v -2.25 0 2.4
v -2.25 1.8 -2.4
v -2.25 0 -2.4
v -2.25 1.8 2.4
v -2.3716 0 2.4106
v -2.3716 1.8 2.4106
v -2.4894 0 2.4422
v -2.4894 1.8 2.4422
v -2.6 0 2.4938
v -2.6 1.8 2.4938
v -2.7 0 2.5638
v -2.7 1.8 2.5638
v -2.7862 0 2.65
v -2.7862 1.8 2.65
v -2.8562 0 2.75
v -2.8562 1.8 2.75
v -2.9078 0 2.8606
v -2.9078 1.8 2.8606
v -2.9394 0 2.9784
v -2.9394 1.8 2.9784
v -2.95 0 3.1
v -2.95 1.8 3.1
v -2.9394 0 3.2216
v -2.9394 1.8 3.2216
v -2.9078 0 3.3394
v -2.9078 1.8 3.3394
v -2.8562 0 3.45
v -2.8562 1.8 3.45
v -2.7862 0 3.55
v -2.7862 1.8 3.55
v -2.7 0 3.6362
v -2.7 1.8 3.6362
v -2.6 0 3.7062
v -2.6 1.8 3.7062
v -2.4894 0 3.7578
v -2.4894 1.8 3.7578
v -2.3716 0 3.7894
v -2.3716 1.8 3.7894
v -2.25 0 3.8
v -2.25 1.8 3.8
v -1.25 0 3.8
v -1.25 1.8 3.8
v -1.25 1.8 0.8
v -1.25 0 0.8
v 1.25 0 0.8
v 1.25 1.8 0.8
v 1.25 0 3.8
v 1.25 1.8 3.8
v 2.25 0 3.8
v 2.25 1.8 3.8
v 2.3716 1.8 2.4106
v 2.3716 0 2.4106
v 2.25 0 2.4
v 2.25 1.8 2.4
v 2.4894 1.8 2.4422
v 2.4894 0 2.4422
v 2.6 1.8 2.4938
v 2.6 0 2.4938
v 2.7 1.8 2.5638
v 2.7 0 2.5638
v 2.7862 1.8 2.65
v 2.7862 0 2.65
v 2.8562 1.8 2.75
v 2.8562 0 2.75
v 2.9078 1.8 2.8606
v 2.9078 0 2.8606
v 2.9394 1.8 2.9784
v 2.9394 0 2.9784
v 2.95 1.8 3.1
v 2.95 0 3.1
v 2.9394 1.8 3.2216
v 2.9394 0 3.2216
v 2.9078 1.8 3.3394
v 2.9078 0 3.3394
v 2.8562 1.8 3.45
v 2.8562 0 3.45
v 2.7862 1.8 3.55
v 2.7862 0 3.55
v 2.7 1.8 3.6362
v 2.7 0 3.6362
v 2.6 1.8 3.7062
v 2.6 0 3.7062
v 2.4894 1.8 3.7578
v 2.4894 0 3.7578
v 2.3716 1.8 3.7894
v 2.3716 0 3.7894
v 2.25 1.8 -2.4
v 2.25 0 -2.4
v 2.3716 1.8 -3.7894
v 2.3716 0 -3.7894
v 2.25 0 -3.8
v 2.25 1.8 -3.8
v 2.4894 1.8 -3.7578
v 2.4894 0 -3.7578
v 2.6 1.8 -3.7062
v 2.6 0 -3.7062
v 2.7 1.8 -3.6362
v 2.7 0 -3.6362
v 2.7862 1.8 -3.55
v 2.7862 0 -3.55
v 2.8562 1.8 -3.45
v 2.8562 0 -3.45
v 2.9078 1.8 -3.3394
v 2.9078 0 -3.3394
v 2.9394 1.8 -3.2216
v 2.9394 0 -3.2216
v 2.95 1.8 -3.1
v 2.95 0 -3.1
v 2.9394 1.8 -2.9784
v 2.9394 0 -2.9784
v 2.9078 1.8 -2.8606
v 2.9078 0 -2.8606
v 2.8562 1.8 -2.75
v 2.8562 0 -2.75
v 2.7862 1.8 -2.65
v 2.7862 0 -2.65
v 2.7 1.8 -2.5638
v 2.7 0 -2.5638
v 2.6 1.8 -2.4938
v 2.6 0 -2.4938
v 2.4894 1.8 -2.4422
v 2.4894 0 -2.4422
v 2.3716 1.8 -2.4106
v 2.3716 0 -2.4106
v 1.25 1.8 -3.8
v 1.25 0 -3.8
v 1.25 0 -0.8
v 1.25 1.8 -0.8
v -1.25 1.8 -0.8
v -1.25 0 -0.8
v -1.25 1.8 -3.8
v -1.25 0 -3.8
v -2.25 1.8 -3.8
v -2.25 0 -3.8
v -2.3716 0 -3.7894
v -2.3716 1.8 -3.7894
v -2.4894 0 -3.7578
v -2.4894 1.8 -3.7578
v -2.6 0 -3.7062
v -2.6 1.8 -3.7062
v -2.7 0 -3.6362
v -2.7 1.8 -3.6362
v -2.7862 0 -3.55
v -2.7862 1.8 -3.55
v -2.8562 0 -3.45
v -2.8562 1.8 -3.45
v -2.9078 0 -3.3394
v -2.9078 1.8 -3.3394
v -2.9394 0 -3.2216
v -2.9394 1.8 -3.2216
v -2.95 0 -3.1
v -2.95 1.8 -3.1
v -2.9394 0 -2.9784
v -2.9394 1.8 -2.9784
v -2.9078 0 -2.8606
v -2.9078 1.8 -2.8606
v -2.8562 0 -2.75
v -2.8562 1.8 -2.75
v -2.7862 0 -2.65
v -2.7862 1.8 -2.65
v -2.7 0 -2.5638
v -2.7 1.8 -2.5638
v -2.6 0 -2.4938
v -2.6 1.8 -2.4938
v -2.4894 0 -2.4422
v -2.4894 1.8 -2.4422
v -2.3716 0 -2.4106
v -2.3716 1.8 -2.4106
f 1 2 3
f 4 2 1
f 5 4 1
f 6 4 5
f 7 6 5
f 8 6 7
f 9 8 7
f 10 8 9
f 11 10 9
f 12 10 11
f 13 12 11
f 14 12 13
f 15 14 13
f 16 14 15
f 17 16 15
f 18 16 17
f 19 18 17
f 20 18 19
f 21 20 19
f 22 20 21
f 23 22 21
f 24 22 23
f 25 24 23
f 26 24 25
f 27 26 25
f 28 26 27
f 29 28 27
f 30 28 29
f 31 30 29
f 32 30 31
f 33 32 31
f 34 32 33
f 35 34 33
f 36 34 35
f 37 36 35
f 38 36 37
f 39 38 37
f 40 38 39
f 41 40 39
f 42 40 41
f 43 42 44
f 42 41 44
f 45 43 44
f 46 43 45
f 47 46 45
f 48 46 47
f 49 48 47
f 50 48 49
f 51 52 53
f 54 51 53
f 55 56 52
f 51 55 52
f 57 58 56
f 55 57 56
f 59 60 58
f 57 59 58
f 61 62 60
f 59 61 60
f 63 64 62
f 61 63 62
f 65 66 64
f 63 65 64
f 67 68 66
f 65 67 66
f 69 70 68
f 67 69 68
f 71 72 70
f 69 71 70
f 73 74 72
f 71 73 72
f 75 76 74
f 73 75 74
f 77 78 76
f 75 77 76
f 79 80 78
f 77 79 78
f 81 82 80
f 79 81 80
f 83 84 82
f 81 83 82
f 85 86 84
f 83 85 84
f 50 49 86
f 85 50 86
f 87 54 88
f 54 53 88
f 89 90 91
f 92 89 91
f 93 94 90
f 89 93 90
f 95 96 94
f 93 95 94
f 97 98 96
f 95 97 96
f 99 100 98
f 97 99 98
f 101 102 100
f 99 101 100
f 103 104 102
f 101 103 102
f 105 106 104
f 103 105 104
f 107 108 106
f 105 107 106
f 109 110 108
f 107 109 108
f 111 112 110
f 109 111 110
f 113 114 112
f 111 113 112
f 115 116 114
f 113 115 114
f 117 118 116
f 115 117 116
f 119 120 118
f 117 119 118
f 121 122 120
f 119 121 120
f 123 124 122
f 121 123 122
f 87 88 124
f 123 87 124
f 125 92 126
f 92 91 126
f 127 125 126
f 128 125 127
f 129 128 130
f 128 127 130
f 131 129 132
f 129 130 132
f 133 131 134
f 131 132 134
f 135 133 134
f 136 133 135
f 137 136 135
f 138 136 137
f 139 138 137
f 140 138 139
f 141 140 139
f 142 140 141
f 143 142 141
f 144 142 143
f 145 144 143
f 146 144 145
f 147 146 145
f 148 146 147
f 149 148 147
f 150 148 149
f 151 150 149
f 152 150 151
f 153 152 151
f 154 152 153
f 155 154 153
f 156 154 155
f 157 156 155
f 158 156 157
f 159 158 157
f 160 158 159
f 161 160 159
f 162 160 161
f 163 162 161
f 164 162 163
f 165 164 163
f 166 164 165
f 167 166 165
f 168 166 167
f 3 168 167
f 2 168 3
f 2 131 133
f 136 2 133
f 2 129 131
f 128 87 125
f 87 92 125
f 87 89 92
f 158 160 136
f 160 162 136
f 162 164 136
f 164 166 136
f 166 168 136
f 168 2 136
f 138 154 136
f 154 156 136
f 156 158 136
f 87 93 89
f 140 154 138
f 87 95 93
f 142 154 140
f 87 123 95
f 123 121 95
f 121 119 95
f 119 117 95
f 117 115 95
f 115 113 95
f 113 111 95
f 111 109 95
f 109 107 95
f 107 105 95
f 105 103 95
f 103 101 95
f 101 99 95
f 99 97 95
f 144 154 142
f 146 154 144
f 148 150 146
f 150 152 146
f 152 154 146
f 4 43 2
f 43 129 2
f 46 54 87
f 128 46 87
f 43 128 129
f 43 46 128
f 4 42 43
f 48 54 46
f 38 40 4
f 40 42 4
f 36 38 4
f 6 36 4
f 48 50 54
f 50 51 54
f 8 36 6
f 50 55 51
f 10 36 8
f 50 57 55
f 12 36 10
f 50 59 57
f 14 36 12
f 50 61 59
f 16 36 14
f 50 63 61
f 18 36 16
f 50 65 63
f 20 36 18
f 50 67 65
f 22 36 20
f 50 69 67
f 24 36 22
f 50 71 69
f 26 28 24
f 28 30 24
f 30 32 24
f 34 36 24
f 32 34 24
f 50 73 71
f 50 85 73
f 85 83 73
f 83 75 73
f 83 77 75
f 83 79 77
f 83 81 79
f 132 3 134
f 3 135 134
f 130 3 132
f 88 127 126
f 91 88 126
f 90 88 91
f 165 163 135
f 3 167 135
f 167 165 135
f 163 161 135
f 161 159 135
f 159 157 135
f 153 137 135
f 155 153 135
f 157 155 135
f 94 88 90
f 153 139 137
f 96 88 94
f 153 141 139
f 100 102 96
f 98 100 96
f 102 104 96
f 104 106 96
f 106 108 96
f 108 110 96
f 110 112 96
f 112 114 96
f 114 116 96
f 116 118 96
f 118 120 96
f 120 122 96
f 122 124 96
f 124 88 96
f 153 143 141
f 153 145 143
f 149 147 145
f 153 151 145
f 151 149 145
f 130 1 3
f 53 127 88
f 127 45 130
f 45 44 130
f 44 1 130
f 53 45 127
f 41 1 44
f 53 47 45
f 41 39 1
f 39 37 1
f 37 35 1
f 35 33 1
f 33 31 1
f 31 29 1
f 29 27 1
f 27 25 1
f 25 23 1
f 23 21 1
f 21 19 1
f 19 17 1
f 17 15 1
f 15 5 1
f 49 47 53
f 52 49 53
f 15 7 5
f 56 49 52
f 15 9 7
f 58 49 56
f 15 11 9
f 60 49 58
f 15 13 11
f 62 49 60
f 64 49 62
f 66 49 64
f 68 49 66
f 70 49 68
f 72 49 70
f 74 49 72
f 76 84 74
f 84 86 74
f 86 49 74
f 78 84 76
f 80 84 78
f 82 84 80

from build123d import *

# Parameters (mm, degrees)
SKETCH1_W           = 1
SKETCH1_H           = 1.4
BOSS_EXTRUDE1_DEPTH = 1.8


with BuildPart() as part:
    # Sketch1 → Boss-Extrude1 (new body)
    with BuildSketch(Plane(origin=(0, 0, 0), x_dir=(1, 0, 0), z_dir=(0, 1, 0))):
        Polygon((-2.25, 2.4), (-2.25, -2.4), (-1.25, -2.4), (-1.25, -0.8), (1.25, -0.8), (1.25, -2.4), (2.25, -2.4), (2.25, 2.4), (1.25, 2.4), (1.25, 0.8), (-1.25, 0.8), (-1.25, 2.4), align=None)
        with Locations((-1.75, 3.1)):
            Rectangle(SKETCH1_W, SKETCH1_H)
        with BuildLine():
            ThreePointArc((-2.25, 3.8), (-2.95, 3.1), (-2.25, 2.4))
            Line((-2.25, 2.4), (-2.25, 3.8))
        make_face()
        with Locations((1.75, 3.1)):
            Rectangle(SKETCH1_W, SKETCH1_H)
        with BuildLine():
            Line((2.25, 3.8), (2.25, 2.4))
            ThreePointArc((2.25, 2.4), (2.95, 3.1), (2.25, 3.8))
        make_face()
        with BuildLine():
            Line((2.25, -2.4), (2.25, -3.8))
            ThreePointArc((2.25, -3.8), (2.95, -3.1), (2.25, -2.4))
        make_face()
        with Locations((1.75, -3.1)):
            Rectangle(SKETCH1_W, SKETCH1_H)
        with Locations((-1.75, -3.1)):
            Rectangle(SKETCH1_W, SKETCH1_H)
        with BuildLine():
            ThreePointArc((-2.25, -2.4), (-2.95, -3.1), (-2.25, -3.8))
            Line((-2.25, -3.8), (-2.25, -2.4))
        make_face()
    extrude(amount=BOSS_EXTRUDE1_DEPTH)


solid = part.part
